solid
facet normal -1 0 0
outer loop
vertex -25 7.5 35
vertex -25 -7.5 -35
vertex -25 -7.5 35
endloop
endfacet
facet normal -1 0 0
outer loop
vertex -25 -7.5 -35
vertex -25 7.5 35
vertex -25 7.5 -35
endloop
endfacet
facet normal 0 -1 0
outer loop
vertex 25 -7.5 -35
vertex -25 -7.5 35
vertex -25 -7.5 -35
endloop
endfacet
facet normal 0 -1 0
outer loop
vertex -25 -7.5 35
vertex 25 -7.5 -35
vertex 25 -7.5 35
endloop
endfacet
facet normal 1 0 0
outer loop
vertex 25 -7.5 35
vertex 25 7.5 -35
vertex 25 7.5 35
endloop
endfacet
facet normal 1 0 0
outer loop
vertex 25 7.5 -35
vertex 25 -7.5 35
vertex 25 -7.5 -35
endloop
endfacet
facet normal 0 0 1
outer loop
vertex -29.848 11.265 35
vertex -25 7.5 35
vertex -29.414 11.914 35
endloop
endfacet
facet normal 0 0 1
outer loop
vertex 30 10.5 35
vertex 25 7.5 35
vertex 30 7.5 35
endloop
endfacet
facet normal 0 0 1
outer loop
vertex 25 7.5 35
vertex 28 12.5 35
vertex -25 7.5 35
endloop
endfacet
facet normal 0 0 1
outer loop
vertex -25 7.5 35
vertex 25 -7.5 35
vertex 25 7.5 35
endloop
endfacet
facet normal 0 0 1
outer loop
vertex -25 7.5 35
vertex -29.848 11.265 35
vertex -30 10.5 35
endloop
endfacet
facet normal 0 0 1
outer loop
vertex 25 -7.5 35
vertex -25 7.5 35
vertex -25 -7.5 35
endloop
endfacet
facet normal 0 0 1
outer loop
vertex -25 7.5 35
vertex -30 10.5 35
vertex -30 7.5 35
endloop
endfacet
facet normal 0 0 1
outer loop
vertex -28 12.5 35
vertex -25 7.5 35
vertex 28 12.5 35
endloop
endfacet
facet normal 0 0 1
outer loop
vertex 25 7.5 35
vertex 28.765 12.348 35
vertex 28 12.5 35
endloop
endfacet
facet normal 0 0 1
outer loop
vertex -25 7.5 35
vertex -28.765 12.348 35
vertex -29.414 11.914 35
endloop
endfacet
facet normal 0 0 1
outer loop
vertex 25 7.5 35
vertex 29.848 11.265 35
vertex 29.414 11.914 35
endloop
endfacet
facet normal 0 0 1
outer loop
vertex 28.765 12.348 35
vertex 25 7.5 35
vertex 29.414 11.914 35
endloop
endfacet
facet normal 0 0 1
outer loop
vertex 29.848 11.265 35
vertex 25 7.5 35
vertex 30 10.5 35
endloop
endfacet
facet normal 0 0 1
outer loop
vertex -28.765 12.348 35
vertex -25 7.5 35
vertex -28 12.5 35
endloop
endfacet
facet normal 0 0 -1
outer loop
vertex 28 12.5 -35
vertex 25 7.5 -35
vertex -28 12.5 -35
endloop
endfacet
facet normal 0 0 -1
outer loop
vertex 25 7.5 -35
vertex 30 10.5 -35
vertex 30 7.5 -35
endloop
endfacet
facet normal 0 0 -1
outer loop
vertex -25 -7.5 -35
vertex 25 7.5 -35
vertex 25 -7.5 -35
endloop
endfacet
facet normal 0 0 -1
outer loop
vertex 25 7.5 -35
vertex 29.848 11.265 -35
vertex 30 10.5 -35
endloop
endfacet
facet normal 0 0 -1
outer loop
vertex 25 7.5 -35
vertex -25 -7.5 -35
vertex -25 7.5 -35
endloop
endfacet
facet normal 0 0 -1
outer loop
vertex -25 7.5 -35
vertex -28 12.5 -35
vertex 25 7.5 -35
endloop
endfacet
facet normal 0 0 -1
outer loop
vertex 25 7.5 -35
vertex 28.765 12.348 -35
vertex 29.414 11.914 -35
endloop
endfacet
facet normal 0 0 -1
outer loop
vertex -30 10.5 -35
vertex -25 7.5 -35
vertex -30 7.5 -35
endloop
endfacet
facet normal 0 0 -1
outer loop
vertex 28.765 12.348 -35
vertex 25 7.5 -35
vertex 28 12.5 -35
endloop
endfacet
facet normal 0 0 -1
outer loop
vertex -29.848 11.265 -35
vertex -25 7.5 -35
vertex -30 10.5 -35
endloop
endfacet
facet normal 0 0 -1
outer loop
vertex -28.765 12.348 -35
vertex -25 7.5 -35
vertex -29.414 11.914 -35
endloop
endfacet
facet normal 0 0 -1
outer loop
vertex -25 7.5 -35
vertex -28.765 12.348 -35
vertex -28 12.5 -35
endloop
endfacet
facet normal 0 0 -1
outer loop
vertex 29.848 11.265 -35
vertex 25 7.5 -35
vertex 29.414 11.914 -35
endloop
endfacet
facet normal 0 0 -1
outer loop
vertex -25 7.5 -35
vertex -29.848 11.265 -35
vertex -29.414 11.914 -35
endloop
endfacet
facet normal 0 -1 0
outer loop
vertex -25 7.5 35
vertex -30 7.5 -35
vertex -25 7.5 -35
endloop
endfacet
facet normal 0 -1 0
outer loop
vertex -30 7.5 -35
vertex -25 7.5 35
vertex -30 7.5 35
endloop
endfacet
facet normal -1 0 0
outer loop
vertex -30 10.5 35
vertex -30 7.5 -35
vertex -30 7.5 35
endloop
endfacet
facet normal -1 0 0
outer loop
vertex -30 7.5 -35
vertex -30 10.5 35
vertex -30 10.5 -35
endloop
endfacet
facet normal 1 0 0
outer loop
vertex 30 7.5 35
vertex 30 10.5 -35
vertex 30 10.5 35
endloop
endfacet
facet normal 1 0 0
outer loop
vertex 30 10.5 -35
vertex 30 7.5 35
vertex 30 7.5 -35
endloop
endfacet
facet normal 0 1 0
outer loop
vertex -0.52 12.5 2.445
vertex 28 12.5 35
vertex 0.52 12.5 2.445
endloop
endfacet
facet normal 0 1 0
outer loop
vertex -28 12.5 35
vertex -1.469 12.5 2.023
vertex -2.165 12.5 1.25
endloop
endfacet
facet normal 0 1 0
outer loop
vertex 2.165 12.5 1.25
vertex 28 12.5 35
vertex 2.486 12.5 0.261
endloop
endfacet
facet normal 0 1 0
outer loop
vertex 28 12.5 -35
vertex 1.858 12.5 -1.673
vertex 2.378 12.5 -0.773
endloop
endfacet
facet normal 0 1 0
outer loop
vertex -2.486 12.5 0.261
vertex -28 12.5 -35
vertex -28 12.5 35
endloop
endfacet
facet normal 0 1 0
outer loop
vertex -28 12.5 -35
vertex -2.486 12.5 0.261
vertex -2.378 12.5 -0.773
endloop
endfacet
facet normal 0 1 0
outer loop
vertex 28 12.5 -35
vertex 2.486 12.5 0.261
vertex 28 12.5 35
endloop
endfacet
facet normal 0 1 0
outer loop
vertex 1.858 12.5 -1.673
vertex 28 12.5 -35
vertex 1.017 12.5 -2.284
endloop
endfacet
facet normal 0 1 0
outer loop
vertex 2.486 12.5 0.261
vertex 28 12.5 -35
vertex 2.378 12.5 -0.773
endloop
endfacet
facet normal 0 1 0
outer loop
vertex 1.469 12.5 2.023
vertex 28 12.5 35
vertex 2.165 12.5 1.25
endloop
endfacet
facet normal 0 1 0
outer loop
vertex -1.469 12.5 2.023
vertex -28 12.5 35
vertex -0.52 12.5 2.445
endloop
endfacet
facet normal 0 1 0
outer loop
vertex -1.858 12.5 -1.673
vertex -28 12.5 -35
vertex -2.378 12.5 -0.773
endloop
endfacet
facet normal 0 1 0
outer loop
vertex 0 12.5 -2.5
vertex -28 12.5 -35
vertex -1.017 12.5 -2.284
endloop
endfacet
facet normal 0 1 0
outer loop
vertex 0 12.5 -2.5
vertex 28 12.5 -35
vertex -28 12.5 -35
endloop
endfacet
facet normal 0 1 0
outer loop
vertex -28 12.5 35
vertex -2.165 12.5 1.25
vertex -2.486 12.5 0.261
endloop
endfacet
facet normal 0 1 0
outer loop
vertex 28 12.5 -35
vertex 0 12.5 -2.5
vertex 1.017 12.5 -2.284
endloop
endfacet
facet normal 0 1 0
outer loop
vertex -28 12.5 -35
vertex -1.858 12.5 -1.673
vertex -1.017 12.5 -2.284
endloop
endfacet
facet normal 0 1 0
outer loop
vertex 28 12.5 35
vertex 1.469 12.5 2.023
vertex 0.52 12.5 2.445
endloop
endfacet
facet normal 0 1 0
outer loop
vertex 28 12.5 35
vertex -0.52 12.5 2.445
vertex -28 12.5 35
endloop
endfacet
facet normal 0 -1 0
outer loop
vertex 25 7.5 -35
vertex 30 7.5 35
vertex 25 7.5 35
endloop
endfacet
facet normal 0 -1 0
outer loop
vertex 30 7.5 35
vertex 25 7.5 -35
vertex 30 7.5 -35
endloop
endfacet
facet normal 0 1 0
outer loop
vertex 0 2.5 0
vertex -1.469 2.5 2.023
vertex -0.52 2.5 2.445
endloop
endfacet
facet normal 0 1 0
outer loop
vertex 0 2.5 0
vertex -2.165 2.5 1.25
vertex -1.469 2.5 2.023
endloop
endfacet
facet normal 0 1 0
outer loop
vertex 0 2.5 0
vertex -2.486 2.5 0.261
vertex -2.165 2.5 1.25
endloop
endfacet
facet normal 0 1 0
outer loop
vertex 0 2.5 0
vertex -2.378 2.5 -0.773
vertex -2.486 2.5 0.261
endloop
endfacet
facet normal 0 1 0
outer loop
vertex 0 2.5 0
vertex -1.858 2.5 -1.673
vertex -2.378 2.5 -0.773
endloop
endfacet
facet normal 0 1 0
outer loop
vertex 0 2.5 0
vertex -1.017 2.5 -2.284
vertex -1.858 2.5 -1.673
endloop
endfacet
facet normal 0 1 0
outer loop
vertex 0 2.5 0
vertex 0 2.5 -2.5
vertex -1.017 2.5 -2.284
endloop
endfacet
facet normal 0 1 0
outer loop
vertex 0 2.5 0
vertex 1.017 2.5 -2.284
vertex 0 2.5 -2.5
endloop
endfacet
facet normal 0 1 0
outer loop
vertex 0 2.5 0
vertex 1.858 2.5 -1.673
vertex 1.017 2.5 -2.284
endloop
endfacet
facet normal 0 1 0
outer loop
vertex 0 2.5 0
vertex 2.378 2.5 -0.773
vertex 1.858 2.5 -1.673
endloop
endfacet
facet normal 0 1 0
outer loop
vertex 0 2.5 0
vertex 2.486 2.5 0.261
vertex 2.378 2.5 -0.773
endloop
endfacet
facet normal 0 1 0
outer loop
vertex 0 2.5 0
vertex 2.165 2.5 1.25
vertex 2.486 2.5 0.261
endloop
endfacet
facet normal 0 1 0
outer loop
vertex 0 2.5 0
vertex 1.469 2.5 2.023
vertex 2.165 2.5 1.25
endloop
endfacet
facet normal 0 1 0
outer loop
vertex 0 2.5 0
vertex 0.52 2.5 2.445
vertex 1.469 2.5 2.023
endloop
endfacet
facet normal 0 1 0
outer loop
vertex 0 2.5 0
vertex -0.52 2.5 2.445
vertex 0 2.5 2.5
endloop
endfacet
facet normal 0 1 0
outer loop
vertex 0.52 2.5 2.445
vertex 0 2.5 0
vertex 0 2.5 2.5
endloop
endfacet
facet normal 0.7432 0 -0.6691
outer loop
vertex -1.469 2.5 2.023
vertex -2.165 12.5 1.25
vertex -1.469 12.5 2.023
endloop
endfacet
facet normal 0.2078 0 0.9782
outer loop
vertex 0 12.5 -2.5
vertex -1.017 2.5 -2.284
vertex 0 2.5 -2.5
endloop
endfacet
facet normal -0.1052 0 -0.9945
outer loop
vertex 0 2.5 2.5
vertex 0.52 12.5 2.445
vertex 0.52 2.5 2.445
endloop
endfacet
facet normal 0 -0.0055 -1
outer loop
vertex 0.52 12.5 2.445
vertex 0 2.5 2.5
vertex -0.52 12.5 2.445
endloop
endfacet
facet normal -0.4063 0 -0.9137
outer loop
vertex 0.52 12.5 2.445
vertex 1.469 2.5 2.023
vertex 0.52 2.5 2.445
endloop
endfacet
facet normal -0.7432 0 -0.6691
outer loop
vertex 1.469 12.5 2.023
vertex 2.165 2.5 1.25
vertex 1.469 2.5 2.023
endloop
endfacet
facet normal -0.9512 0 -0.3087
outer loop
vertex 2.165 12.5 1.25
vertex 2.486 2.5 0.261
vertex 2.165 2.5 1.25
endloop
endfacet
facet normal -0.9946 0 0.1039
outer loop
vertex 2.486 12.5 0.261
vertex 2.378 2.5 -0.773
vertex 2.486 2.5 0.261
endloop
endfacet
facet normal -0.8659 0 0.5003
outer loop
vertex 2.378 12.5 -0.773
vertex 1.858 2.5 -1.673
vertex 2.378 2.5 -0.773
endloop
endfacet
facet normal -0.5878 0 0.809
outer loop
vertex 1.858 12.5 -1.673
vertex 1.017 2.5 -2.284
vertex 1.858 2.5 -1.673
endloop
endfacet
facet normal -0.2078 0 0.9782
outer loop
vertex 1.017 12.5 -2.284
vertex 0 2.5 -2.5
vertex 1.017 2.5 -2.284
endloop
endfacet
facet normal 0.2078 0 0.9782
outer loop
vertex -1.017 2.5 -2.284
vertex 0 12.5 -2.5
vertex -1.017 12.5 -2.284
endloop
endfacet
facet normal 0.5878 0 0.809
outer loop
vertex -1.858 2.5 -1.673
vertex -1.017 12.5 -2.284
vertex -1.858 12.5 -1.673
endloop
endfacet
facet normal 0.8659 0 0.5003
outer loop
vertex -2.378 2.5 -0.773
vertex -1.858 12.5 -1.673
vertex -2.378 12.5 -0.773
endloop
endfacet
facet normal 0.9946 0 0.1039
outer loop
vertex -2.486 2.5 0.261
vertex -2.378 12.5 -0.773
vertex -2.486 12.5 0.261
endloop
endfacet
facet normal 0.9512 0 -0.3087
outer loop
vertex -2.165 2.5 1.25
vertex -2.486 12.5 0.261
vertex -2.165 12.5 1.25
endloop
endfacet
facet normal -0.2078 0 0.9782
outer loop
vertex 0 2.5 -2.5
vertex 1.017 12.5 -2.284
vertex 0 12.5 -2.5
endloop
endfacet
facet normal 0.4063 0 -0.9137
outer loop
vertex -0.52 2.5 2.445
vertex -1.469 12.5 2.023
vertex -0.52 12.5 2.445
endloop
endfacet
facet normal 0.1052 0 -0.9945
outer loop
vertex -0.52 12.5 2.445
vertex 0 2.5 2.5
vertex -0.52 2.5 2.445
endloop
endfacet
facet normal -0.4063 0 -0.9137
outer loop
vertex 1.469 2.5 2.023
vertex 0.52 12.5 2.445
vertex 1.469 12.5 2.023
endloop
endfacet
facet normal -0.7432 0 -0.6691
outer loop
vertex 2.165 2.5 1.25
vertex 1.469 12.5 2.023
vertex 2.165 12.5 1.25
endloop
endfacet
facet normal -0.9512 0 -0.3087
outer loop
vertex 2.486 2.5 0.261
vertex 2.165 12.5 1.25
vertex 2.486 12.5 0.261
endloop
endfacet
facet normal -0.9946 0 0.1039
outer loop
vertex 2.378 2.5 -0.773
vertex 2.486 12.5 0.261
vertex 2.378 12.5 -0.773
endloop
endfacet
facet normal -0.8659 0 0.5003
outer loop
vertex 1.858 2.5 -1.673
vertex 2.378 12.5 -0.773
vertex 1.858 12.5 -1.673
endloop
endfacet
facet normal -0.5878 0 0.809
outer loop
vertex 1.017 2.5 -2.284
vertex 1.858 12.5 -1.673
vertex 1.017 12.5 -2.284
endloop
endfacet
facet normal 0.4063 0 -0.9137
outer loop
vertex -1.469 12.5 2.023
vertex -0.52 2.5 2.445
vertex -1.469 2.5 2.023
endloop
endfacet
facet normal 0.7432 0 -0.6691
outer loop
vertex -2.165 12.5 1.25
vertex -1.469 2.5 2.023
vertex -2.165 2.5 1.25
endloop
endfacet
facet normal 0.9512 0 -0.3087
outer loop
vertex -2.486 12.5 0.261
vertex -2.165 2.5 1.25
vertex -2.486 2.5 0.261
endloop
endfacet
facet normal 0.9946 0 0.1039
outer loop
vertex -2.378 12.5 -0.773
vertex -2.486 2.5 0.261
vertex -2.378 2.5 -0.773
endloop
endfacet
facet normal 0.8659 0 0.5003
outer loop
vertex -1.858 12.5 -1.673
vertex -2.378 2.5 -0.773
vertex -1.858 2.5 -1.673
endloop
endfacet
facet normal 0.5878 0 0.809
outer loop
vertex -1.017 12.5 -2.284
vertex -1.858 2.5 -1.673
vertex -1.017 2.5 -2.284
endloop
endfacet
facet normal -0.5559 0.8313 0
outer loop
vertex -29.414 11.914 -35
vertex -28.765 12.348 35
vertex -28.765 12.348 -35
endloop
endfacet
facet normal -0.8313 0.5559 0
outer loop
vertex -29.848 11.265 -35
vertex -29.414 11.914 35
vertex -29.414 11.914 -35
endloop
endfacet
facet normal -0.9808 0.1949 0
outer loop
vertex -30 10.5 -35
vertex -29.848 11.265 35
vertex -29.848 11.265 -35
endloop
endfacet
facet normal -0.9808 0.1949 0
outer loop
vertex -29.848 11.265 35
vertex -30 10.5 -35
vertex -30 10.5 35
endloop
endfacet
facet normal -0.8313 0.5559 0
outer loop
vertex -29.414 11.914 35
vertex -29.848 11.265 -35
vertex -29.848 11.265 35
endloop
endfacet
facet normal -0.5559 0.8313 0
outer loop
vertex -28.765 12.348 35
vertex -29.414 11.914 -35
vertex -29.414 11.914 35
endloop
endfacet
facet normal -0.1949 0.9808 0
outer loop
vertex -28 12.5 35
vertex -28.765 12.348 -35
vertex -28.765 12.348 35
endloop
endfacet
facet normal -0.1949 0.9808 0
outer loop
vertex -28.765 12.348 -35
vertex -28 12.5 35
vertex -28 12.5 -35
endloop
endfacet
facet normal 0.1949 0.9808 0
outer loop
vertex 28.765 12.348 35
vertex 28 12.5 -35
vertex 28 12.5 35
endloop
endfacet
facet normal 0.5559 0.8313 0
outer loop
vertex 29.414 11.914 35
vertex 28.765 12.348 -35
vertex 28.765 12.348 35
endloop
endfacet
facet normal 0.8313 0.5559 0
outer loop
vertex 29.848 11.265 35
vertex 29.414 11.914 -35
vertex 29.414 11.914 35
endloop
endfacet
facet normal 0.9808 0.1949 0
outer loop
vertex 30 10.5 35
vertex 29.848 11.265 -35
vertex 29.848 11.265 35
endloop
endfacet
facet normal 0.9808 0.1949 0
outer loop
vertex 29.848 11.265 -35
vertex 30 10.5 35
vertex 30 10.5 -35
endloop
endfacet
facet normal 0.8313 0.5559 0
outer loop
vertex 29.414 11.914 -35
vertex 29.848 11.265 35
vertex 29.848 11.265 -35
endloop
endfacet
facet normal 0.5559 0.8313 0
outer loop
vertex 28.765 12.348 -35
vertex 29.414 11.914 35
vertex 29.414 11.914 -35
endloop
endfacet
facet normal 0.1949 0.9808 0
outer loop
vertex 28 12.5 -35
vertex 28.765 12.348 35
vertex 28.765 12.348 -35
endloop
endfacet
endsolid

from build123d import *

# Parameters (mm, degrees)
SKETCH1_W               = 50
SKETCH1_H               = 15
BOSS_EXTRUDE1_DEPTH     = 35
SKETCH3_W               = 60
SKETCH3_H               = 70
BOSS_EXTRUDE2_DEPTH     = 5
SKETCH2_R               = 2.5
CUT_EXTRUDE1_DEPTH      = 1
CUT_EXTRUDE1_DEPTH_BACK = 10
FILLET1_R               = 2


with BuildPart() as part:
    # Sketch1 → Boss-Extrude1 (new body, symmetric)
    with BuildSketch(Plane.XY):
        Rectangle(SKETCH1_W, SKETCH1_H)
    extrude(amount=BOSS_EXTRUDE1_DEPTH, both=True)

    # Sketch3 → Boss-Extrude2 (add)
    with BuildSketch(Plane(origin=(0, 7.5, 0), x_dir=(1, 0, 0), z_dir=(0, 1, 0))):
        Rectangle(SKETCH3_W, SKETCH3_H)
    extrude(amount=BOSS_EXTRUDE2_DEPTH)

    # Sketch2 → Cut-Extrude1 (cut, two sides)
    with BuildSketch(Plane(origin=(0, 12.5, 0), x_dir=(1, 0, 0), z_dir=(0, 1, 0))) as cut_extrude1_sk:
        Circle(SKETCH2_R)
    extrude(amount=CUT_EXTRUDE1_DEPTH, mode=Mode.SUBTRACT)
    extrude(cut_extrude1_sk.sketch, amount=-CUT_EXTRUDE1_DEPTH_BACK, mode=Mode.SUBTRACT)

    # Fillet1
    fillet1_edges = [part.edges().sort_by_distance(p)[0] for p in [
        (-30, 12.5, 0),
        (30, 12.5, 0),
    ]]
    fillet(fillet1_edges, radius=FILLET1_R)


solid = part.part
